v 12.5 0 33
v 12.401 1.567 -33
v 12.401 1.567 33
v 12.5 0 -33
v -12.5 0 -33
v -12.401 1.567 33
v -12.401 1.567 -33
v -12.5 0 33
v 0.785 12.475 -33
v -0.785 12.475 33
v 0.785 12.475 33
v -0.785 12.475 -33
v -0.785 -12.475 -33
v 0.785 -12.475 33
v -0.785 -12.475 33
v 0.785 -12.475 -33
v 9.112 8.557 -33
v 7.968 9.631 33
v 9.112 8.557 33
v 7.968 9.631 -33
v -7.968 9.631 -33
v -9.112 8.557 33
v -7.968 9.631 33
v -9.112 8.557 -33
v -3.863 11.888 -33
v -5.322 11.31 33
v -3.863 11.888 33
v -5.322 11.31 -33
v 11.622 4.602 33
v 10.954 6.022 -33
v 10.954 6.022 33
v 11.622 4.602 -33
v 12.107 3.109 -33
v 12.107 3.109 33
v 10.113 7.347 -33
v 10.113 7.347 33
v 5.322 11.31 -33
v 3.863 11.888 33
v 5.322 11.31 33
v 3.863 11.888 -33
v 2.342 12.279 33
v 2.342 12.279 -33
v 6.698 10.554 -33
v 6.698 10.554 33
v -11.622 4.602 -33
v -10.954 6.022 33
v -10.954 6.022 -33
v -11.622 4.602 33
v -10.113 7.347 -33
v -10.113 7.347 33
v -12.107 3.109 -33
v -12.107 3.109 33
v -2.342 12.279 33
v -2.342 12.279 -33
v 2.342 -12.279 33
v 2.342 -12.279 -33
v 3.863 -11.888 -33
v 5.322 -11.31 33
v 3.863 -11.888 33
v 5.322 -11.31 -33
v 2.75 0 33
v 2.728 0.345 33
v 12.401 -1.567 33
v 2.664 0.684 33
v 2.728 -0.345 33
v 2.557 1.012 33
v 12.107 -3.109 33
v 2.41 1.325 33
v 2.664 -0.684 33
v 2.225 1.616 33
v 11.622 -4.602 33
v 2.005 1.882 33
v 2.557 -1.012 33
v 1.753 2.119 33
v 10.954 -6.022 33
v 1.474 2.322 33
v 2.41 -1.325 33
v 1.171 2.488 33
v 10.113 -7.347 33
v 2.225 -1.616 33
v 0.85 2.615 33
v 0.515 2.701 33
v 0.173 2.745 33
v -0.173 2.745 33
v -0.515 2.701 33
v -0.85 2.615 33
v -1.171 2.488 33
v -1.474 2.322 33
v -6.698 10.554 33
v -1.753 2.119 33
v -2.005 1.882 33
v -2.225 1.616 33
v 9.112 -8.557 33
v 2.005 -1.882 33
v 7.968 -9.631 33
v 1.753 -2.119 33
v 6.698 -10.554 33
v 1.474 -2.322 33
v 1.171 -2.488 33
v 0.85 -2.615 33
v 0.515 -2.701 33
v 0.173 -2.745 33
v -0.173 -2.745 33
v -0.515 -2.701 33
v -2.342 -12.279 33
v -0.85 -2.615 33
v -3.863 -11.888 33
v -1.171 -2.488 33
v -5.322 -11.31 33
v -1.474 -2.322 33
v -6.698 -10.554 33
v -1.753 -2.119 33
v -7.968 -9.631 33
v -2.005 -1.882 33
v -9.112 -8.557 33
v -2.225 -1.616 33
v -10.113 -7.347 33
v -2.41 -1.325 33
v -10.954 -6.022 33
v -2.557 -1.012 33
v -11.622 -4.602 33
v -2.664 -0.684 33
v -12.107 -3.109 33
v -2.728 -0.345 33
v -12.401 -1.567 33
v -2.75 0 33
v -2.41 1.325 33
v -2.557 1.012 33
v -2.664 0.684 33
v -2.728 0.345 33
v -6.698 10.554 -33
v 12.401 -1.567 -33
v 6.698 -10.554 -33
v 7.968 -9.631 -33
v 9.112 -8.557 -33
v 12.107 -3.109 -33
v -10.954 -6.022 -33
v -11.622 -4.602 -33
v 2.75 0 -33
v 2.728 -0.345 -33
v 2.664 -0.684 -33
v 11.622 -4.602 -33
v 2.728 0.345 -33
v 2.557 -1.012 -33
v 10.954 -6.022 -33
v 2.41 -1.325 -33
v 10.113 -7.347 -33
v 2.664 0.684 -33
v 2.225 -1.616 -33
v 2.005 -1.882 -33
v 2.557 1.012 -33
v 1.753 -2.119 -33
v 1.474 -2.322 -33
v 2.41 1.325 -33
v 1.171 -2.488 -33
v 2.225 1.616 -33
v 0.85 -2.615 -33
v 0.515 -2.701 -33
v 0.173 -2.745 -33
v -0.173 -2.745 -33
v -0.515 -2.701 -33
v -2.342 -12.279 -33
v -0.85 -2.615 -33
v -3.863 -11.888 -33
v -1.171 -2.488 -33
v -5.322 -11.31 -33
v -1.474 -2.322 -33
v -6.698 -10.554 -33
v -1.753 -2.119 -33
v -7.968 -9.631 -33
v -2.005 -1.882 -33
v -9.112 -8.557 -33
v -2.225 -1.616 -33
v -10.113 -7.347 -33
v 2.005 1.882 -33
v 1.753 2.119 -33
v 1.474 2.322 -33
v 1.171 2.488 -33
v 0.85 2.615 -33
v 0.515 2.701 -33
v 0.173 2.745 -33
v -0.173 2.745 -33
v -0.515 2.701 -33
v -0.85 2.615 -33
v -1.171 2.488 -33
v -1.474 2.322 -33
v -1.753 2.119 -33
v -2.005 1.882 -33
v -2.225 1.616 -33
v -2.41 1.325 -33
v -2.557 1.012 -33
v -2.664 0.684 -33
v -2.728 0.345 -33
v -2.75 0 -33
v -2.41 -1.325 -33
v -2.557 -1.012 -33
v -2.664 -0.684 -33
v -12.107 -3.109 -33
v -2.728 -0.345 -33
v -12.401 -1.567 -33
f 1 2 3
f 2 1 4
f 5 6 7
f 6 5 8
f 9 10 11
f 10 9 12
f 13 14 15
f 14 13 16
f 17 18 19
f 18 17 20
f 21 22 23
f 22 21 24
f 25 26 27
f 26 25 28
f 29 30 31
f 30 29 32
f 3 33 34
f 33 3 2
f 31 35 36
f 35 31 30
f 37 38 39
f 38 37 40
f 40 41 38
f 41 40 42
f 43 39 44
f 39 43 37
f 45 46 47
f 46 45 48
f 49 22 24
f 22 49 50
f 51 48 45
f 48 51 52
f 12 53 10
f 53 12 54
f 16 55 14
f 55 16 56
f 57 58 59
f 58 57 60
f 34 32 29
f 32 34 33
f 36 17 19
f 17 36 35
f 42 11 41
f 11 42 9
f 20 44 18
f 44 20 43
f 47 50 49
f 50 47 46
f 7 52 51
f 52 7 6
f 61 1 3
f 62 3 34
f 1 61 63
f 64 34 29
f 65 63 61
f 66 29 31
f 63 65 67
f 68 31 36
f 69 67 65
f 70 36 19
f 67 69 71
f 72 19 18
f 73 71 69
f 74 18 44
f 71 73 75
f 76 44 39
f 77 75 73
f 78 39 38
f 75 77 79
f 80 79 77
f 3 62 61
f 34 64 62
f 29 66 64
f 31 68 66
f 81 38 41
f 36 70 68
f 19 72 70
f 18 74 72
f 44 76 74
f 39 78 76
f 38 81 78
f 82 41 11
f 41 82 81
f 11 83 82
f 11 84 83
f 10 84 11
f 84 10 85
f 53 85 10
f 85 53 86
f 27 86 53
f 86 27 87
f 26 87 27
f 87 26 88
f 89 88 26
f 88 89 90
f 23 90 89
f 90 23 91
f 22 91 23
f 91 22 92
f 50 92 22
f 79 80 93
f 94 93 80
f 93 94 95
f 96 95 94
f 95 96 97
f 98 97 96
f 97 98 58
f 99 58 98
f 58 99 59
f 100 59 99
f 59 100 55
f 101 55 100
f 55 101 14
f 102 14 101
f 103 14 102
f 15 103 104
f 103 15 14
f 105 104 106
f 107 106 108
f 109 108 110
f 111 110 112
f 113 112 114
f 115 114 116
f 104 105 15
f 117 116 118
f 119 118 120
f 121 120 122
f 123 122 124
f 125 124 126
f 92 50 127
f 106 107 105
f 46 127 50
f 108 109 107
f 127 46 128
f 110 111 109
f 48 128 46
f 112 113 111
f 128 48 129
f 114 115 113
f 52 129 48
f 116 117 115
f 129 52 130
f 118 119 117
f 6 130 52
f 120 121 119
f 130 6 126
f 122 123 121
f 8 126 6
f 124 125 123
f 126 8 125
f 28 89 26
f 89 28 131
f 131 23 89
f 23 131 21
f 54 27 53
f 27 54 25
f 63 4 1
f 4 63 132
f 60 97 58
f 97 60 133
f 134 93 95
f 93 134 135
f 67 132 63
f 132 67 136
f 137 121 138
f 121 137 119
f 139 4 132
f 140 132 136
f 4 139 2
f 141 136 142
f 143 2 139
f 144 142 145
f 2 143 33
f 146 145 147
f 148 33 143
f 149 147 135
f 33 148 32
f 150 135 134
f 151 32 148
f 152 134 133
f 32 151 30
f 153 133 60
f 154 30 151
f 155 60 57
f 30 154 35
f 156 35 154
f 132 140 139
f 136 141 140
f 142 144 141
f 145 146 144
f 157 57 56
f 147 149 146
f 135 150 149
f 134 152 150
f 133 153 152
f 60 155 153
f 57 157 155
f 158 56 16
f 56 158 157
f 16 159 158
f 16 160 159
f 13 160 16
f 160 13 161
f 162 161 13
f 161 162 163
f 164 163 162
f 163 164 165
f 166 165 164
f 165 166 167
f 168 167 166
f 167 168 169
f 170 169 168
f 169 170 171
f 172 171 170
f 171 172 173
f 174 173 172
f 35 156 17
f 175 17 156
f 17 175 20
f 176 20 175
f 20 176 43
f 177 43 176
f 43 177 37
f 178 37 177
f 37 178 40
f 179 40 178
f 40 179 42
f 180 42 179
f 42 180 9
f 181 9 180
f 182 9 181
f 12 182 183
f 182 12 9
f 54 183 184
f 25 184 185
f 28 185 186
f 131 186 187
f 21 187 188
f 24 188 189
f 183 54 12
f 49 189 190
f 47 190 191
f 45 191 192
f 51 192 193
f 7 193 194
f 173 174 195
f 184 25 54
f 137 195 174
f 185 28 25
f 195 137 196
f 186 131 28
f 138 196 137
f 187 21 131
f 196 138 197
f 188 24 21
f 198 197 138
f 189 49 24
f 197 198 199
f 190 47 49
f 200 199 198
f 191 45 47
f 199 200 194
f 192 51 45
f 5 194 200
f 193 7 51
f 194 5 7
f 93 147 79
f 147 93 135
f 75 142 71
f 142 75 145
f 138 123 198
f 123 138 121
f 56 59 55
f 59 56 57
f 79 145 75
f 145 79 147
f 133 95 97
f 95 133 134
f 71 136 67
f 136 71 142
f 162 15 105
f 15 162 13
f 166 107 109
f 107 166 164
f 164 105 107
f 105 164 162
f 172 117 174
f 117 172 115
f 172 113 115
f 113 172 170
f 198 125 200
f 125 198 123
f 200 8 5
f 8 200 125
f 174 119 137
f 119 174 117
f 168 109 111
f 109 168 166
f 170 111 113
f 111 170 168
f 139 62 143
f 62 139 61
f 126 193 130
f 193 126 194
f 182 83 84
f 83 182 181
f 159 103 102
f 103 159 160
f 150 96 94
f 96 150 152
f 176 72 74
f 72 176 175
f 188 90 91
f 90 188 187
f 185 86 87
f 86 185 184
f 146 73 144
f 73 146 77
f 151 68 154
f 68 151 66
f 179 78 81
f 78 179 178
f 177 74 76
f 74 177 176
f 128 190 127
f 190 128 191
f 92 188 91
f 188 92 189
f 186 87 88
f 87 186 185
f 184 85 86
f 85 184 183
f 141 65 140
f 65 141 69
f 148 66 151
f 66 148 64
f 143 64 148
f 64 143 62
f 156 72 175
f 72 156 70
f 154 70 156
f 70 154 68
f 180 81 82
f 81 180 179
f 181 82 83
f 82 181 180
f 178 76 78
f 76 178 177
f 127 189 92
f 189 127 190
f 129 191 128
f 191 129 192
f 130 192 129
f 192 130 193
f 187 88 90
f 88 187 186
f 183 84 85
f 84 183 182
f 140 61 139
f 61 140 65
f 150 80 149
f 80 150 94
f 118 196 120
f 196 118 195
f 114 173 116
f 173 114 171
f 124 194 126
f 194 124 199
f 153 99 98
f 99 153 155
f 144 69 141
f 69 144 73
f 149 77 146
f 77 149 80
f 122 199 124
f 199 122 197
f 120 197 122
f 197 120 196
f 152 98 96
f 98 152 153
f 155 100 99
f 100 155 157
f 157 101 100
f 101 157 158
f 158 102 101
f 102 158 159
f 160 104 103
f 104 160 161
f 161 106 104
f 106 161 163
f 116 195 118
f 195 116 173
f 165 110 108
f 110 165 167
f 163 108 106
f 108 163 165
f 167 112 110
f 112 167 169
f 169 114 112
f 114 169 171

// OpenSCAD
$fn = 50;


difference() {
	union() {
		translate(v = [0, 0, -33.0000000000]) {
			cylinder(h = 66, r = 12.5000000000);
		}
	}
	union() {
		translate(v = [0, 0, -100.0000000000]) {
			cylinder(h = 200, r = 2.7500000000);
		}
	}
}
